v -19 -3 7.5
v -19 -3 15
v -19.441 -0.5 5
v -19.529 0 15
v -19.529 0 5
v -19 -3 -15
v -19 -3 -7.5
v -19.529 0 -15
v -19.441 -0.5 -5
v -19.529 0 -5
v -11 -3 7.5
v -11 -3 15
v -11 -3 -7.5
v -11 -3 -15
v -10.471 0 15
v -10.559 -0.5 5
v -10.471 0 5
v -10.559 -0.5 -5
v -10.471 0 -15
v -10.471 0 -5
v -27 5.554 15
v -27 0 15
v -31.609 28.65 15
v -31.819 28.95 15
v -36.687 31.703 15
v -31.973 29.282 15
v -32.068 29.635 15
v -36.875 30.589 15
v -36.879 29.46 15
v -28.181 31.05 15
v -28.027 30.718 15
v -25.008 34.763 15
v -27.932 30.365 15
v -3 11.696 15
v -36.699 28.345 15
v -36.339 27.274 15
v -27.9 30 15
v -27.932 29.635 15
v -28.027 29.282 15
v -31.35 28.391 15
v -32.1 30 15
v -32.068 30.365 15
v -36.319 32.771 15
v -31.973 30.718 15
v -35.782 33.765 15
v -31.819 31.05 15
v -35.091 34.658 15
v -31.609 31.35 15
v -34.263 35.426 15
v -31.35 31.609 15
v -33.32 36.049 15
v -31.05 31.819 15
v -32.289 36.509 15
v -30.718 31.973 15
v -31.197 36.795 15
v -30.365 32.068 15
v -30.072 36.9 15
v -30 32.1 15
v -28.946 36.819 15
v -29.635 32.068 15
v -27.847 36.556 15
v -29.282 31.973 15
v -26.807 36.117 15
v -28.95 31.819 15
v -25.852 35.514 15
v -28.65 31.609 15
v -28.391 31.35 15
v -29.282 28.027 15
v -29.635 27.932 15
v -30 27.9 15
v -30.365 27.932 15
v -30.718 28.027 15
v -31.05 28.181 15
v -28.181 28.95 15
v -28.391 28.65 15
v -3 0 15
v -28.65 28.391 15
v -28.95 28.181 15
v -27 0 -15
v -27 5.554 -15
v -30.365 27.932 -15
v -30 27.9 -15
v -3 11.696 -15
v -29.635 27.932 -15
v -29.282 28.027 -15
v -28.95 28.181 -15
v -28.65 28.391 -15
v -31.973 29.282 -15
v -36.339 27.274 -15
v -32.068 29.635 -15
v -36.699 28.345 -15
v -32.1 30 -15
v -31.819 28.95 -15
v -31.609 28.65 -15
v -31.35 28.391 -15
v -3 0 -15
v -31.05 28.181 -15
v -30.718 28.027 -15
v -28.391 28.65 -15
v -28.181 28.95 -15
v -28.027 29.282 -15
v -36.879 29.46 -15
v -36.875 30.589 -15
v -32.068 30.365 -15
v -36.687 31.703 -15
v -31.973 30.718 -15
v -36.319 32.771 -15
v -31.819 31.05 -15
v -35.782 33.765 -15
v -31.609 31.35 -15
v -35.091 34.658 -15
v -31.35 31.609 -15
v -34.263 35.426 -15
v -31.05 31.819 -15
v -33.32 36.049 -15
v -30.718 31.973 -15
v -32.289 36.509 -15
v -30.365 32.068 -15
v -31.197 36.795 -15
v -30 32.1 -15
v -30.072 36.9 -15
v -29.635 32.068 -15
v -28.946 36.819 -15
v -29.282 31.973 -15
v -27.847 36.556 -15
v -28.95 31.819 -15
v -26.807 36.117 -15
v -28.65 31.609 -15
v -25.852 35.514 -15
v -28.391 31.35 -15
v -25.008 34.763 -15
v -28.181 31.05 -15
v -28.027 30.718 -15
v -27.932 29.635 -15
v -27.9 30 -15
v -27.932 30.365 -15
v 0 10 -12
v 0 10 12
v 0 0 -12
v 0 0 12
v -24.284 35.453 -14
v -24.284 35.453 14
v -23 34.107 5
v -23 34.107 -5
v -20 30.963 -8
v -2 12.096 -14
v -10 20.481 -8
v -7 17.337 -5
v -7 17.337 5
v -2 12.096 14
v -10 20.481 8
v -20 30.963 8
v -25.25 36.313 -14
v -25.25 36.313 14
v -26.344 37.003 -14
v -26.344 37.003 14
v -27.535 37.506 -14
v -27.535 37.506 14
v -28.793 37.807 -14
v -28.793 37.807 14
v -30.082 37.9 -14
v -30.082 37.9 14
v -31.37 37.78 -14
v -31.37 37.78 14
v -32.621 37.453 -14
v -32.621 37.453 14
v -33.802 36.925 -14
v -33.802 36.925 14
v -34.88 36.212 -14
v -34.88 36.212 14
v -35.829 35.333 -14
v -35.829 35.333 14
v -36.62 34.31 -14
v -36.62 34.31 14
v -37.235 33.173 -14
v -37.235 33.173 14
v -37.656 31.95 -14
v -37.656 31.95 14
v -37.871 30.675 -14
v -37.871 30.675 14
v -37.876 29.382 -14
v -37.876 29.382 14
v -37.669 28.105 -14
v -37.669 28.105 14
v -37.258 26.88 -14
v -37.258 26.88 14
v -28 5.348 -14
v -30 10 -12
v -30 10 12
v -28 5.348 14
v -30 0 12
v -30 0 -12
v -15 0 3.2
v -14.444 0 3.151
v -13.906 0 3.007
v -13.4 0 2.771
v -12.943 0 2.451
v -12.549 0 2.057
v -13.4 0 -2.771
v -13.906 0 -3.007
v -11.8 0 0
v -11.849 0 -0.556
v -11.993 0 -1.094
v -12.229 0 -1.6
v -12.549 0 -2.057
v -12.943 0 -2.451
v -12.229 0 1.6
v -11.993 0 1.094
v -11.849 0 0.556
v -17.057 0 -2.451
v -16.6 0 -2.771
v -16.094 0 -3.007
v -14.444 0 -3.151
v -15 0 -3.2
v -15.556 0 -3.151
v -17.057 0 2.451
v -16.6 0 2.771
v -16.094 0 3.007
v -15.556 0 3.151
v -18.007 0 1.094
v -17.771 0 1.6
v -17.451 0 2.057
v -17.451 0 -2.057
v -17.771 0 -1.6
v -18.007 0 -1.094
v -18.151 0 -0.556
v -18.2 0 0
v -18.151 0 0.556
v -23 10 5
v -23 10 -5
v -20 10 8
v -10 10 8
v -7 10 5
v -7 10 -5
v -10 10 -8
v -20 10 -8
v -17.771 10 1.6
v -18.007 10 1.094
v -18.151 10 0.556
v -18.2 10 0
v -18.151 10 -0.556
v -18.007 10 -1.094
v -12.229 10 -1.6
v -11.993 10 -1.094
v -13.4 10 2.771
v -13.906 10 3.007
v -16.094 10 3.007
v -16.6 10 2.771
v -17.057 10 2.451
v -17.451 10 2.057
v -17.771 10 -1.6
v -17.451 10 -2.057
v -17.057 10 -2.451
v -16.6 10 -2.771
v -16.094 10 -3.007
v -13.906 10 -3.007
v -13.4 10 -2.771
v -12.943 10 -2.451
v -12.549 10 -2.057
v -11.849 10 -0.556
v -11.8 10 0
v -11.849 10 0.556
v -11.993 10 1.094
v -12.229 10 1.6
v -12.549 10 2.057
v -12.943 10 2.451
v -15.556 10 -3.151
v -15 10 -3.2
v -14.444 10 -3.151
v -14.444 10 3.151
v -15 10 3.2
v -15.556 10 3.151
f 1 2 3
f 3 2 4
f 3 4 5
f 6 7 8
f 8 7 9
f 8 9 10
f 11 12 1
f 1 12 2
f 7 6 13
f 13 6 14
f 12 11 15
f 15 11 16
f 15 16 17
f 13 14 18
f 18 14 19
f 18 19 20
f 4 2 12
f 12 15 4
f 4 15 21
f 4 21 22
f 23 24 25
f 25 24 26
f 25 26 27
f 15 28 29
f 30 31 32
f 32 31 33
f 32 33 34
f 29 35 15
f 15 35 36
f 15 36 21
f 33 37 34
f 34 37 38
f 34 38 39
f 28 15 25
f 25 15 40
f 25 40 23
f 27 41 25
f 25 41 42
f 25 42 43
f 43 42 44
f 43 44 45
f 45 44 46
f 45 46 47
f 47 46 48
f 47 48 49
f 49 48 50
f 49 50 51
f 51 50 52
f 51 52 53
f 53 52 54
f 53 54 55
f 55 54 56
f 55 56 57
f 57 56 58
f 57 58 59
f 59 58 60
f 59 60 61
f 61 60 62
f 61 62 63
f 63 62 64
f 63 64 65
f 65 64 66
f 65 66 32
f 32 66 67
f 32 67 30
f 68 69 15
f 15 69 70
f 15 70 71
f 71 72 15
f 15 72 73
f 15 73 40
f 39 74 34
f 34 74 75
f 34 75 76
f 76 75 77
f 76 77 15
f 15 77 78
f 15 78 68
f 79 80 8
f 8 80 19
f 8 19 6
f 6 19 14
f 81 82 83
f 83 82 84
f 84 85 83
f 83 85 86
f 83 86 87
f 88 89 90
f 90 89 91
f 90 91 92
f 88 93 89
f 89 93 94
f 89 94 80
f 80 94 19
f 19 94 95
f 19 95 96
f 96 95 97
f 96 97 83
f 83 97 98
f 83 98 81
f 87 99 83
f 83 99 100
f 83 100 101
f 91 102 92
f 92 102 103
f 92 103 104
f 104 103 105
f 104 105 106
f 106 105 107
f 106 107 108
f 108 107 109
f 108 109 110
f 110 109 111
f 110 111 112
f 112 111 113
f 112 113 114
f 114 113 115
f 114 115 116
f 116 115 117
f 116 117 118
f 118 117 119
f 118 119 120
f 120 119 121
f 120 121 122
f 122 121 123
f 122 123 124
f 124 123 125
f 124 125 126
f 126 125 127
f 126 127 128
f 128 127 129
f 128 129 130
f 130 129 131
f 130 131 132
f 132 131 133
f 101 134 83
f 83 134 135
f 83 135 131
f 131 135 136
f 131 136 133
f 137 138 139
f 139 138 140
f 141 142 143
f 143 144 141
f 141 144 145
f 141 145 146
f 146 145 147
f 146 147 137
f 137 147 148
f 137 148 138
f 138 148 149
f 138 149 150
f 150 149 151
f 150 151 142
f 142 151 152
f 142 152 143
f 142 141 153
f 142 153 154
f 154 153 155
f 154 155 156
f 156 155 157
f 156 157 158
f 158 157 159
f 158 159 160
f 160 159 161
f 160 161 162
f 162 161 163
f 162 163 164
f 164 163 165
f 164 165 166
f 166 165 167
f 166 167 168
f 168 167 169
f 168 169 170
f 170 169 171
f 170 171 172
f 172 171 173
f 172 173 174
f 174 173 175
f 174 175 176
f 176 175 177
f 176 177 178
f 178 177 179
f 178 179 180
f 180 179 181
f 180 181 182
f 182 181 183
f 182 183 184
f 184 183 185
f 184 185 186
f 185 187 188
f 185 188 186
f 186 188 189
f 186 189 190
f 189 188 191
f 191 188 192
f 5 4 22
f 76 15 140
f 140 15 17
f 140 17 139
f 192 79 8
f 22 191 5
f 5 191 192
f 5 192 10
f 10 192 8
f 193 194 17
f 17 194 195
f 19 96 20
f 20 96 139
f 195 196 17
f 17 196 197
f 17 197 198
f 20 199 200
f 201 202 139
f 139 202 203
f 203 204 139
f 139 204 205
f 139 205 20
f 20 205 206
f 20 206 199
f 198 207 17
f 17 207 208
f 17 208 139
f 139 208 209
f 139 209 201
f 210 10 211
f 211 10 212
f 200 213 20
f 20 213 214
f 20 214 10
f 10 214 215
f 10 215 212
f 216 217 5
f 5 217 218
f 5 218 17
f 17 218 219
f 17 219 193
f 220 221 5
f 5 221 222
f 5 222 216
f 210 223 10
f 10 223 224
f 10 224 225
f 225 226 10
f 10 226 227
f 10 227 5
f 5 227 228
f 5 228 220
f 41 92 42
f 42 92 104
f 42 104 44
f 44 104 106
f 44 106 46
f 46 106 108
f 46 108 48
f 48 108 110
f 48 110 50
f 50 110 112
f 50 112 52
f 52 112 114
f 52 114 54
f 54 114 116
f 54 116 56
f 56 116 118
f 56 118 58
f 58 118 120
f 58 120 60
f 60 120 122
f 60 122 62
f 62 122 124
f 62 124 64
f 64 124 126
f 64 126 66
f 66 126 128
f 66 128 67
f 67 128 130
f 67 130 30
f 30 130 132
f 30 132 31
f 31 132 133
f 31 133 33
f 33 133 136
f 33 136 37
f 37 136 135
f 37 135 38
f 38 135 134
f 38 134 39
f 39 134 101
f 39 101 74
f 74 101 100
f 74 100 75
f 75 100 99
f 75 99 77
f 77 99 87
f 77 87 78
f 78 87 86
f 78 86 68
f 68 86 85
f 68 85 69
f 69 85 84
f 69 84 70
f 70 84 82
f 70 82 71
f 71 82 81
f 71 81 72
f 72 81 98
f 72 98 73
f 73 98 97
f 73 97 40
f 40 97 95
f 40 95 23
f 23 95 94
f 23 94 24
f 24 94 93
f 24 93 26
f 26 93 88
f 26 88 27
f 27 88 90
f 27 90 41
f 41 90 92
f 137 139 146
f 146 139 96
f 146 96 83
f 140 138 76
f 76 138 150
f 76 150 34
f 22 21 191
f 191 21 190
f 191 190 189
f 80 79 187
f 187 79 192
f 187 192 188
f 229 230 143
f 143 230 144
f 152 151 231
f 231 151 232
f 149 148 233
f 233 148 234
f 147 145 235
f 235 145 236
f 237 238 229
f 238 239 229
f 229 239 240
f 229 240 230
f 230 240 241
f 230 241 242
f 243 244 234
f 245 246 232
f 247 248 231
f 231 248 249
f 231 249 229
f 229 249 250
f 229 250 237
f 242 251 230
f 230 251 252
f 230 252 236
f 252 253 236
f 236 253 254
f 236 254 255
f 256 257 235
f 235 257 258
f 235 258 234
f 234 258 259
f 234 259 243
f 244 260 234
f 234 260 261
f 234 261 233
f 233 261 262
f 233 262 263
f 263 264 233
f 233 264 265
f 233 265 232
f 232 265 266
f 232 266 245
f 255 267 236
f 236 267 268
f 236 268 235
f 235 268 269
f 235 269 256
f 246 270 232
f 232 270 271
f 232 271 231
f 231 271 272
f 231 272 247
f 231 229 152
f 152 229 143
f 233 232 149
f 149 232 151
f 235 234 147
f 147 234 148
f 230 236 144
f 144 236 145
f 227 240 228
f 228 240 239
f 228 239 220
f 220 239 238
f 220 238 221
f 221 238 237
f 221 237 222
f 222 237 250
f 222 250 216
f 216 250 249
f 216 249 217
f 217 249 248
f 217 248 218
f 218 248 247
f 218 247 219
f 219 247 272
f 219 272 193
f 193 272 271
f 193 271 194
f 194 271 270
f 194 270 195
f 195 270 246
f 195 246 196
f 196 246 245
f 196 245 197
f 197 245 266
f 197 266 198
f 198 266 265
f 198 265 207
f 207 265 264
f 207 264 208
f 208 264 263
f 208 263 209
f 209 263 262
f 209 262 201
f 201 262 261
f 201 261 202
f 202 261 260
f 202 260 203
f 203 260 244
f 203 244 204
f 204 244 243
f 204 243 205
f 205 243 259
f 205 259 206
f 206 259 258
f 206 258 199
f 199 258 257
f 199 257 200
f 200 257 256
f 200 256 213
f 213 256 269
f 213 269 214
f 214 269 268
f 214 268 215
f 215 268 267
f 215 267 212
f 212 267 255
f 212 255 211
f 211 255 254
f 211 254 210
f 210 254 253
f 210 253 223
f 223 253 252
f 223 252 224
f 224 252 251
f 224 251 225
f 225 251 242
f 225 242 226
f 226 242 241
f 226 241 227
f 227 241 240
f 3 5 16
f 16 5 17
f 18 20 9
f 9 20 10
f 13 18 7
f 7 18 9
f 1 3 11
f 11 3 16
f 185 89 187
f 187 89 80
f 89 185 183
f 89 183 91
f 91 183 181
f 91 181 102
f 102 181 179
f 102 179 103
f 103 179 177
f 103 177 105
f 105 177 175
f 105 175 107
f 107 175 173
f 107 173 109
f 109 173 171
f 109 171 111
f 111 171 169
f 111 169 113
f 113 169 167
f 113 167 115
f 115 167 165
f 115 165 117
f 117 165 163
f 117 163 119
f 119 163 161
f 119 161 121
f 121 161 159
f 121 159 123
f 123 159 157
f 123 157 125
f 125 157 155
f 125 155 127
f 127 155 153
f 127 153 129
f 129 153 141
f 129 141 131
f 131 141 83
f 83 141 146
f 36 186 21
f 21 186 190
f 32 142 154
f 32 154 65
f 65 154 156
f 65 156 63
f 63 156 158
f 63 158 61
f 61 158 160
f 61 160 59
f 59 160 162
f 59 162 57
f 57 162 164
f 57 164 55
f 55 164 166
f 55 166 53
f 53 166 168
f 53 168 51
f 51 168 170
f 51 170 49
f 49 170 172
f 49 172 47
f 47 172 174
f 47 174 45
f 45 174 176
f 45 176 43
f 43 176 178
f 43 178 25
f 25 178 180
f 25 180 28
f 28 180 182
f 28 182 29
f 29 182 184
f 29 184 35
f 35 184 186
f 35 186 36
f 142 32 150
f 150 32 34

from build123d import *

# Parameters (mm, degrees)
CROQUIS1_R              = 2.1
SALIENTE_EXTRUIR1_DEPTH = 15
CHAFL_N1_SIZE           = 3
CORTAR_EXTRUIR1_START   = -10
CROQUIS3_W              = 16
CROQUIS3_H              = 16
CORTAR_EXTRUIR1_DEPTH   = 28.9
CHAFL_N2_SIZE           = 3
CROQUIS4_R              = 3.2
CORTAR_EXTRUIR2_DEPTH   = 14
CROQUIS5_W              = 10
CROQUIS5_H              = 10
CORTAR_EXTRUIR3_DEPTH   = 4
CHAFL_N3_SIZE           = 2.5
CHAFL_N4_SIZE           = 1


with BuildPart() as part:
    # Croquis1 → Saliente-Extruir1 (new body, symmetric)
    with BuildSketch(Plane.XY):
        with BuildLine():
            Line((-30, 0), (-30, 10))
            Line((-30, 10), (-37.257580847, 26.8795))
            ThreePointArc((-37.257580847, 26.8795), (-34.35566426, 36.590765423), (-24.284119395, 35.453320907))
            Line((-24.284119395, 35.453320907), (0, 10))
            Line((0, 10), (0, 0))
            Line((0, 0), (-10.471019058, 0))
            Line((-10.471019058, 0), (-11, -3))
            Line((-11, -3), (-19, -3))
            Line((-19, -3), (-19.528980942, 0))
            Line((-19.528980942, 0), (-30, 0))
        make_face()
        with Locations((-30, 30)):
            Circle(CROQUIS1_R, mode=Mode.SUBTRACT)
    extrude(amount=SALIENTE_EXTRUIR1_DEPTH, both=True)

    # Chaflán1
    chafl_n1_edges = [part.edges().sort_by_distance(p)[0] for p in [
        (-30, 5, -15),
        (0, 5, -15),
        (-30, 5, 15),
        (0, 5, 15),
    ]]
    chamfer(chafl_n1_edges, length=CHAFL_N1_SIZE)

    # Croquis3 → Cortar-Extruir1 (cut, through all)
    with BuildSketch(Plane.XZ.offset(CORTAR_EXTRUIR1_START)):
        with Locations((-15, 0)):
            Rectangle(CROQUIS3_W, CROQUIS3_H)
    extrude(amount=-CORTAR_EXTRUIR1_DEPTH, mode=Mode.SUBTRACT)

    # Chaflán2
    chafl_n2_edges = [part.edges().sort_by_distance(p)[0] for p in [
        (-23, 22.053687666, -8),
        (-23, 22.053687666, 8),
        (-7, 13.668513637, 8),
        (-7, 13.668513637, -8),
    ]]
    chamfer(chafl_n2_edges, length=CHAFL_N2_SIZE)

    # Croquis4 → Cortar-Extruir2 (cut, through all)
    with BuildSketch(Plane(origin=(0, 10, 0), x_dir=(1, 0, 0), z_dir=(0, 1, 0))):
        with Locations((-15, 0)):
            Circle(CROQUIS4_R)
    extrude(amount=-CORTAR_EXTRUIR2_DEPTH, mode=Mode.SUBTRACT)

    # Croquis5 → Cortar-Extruir3 (cut, through all)
    with BuildSketch(Plane.XZ):
        with Locations((-15, 0)):
            Rectangle(CROQUIS5_W, CROQUIS5_H)
    extrude(amount=CORTAR_EXTRUIR3_DEPTH, mode=Mode.SUBTRACT)

    # Chaflán3
    chafl_n3_edges = [part.edges().sort_by_distance(p)[0] for p in [
        (-15, -3, -5),
        (-15, -3, 5),
    ]]
    chamfer(chafl_n3_edges, length=CHAFL_N3_SIZE)

    # Chaflán4
    chafl_n4_edges = [part.edges().sort_by_distance(p)[0] for p in [
        (-32.128790423, 14.951087519, -15),
        (-34.35566426, 36.590765423, -15),
        (-34.35566426, 36.590765423, 15),
        (-32.128790423, 14.951087519, 15),
        (-13.642059698, 24.298880584, -15),
        (-13.642059698, 24.298880584, 15),
    ]]
    chamfer(chafl_n4_edges, length=CHAFL_N4_SIZE)


solid = part.part
